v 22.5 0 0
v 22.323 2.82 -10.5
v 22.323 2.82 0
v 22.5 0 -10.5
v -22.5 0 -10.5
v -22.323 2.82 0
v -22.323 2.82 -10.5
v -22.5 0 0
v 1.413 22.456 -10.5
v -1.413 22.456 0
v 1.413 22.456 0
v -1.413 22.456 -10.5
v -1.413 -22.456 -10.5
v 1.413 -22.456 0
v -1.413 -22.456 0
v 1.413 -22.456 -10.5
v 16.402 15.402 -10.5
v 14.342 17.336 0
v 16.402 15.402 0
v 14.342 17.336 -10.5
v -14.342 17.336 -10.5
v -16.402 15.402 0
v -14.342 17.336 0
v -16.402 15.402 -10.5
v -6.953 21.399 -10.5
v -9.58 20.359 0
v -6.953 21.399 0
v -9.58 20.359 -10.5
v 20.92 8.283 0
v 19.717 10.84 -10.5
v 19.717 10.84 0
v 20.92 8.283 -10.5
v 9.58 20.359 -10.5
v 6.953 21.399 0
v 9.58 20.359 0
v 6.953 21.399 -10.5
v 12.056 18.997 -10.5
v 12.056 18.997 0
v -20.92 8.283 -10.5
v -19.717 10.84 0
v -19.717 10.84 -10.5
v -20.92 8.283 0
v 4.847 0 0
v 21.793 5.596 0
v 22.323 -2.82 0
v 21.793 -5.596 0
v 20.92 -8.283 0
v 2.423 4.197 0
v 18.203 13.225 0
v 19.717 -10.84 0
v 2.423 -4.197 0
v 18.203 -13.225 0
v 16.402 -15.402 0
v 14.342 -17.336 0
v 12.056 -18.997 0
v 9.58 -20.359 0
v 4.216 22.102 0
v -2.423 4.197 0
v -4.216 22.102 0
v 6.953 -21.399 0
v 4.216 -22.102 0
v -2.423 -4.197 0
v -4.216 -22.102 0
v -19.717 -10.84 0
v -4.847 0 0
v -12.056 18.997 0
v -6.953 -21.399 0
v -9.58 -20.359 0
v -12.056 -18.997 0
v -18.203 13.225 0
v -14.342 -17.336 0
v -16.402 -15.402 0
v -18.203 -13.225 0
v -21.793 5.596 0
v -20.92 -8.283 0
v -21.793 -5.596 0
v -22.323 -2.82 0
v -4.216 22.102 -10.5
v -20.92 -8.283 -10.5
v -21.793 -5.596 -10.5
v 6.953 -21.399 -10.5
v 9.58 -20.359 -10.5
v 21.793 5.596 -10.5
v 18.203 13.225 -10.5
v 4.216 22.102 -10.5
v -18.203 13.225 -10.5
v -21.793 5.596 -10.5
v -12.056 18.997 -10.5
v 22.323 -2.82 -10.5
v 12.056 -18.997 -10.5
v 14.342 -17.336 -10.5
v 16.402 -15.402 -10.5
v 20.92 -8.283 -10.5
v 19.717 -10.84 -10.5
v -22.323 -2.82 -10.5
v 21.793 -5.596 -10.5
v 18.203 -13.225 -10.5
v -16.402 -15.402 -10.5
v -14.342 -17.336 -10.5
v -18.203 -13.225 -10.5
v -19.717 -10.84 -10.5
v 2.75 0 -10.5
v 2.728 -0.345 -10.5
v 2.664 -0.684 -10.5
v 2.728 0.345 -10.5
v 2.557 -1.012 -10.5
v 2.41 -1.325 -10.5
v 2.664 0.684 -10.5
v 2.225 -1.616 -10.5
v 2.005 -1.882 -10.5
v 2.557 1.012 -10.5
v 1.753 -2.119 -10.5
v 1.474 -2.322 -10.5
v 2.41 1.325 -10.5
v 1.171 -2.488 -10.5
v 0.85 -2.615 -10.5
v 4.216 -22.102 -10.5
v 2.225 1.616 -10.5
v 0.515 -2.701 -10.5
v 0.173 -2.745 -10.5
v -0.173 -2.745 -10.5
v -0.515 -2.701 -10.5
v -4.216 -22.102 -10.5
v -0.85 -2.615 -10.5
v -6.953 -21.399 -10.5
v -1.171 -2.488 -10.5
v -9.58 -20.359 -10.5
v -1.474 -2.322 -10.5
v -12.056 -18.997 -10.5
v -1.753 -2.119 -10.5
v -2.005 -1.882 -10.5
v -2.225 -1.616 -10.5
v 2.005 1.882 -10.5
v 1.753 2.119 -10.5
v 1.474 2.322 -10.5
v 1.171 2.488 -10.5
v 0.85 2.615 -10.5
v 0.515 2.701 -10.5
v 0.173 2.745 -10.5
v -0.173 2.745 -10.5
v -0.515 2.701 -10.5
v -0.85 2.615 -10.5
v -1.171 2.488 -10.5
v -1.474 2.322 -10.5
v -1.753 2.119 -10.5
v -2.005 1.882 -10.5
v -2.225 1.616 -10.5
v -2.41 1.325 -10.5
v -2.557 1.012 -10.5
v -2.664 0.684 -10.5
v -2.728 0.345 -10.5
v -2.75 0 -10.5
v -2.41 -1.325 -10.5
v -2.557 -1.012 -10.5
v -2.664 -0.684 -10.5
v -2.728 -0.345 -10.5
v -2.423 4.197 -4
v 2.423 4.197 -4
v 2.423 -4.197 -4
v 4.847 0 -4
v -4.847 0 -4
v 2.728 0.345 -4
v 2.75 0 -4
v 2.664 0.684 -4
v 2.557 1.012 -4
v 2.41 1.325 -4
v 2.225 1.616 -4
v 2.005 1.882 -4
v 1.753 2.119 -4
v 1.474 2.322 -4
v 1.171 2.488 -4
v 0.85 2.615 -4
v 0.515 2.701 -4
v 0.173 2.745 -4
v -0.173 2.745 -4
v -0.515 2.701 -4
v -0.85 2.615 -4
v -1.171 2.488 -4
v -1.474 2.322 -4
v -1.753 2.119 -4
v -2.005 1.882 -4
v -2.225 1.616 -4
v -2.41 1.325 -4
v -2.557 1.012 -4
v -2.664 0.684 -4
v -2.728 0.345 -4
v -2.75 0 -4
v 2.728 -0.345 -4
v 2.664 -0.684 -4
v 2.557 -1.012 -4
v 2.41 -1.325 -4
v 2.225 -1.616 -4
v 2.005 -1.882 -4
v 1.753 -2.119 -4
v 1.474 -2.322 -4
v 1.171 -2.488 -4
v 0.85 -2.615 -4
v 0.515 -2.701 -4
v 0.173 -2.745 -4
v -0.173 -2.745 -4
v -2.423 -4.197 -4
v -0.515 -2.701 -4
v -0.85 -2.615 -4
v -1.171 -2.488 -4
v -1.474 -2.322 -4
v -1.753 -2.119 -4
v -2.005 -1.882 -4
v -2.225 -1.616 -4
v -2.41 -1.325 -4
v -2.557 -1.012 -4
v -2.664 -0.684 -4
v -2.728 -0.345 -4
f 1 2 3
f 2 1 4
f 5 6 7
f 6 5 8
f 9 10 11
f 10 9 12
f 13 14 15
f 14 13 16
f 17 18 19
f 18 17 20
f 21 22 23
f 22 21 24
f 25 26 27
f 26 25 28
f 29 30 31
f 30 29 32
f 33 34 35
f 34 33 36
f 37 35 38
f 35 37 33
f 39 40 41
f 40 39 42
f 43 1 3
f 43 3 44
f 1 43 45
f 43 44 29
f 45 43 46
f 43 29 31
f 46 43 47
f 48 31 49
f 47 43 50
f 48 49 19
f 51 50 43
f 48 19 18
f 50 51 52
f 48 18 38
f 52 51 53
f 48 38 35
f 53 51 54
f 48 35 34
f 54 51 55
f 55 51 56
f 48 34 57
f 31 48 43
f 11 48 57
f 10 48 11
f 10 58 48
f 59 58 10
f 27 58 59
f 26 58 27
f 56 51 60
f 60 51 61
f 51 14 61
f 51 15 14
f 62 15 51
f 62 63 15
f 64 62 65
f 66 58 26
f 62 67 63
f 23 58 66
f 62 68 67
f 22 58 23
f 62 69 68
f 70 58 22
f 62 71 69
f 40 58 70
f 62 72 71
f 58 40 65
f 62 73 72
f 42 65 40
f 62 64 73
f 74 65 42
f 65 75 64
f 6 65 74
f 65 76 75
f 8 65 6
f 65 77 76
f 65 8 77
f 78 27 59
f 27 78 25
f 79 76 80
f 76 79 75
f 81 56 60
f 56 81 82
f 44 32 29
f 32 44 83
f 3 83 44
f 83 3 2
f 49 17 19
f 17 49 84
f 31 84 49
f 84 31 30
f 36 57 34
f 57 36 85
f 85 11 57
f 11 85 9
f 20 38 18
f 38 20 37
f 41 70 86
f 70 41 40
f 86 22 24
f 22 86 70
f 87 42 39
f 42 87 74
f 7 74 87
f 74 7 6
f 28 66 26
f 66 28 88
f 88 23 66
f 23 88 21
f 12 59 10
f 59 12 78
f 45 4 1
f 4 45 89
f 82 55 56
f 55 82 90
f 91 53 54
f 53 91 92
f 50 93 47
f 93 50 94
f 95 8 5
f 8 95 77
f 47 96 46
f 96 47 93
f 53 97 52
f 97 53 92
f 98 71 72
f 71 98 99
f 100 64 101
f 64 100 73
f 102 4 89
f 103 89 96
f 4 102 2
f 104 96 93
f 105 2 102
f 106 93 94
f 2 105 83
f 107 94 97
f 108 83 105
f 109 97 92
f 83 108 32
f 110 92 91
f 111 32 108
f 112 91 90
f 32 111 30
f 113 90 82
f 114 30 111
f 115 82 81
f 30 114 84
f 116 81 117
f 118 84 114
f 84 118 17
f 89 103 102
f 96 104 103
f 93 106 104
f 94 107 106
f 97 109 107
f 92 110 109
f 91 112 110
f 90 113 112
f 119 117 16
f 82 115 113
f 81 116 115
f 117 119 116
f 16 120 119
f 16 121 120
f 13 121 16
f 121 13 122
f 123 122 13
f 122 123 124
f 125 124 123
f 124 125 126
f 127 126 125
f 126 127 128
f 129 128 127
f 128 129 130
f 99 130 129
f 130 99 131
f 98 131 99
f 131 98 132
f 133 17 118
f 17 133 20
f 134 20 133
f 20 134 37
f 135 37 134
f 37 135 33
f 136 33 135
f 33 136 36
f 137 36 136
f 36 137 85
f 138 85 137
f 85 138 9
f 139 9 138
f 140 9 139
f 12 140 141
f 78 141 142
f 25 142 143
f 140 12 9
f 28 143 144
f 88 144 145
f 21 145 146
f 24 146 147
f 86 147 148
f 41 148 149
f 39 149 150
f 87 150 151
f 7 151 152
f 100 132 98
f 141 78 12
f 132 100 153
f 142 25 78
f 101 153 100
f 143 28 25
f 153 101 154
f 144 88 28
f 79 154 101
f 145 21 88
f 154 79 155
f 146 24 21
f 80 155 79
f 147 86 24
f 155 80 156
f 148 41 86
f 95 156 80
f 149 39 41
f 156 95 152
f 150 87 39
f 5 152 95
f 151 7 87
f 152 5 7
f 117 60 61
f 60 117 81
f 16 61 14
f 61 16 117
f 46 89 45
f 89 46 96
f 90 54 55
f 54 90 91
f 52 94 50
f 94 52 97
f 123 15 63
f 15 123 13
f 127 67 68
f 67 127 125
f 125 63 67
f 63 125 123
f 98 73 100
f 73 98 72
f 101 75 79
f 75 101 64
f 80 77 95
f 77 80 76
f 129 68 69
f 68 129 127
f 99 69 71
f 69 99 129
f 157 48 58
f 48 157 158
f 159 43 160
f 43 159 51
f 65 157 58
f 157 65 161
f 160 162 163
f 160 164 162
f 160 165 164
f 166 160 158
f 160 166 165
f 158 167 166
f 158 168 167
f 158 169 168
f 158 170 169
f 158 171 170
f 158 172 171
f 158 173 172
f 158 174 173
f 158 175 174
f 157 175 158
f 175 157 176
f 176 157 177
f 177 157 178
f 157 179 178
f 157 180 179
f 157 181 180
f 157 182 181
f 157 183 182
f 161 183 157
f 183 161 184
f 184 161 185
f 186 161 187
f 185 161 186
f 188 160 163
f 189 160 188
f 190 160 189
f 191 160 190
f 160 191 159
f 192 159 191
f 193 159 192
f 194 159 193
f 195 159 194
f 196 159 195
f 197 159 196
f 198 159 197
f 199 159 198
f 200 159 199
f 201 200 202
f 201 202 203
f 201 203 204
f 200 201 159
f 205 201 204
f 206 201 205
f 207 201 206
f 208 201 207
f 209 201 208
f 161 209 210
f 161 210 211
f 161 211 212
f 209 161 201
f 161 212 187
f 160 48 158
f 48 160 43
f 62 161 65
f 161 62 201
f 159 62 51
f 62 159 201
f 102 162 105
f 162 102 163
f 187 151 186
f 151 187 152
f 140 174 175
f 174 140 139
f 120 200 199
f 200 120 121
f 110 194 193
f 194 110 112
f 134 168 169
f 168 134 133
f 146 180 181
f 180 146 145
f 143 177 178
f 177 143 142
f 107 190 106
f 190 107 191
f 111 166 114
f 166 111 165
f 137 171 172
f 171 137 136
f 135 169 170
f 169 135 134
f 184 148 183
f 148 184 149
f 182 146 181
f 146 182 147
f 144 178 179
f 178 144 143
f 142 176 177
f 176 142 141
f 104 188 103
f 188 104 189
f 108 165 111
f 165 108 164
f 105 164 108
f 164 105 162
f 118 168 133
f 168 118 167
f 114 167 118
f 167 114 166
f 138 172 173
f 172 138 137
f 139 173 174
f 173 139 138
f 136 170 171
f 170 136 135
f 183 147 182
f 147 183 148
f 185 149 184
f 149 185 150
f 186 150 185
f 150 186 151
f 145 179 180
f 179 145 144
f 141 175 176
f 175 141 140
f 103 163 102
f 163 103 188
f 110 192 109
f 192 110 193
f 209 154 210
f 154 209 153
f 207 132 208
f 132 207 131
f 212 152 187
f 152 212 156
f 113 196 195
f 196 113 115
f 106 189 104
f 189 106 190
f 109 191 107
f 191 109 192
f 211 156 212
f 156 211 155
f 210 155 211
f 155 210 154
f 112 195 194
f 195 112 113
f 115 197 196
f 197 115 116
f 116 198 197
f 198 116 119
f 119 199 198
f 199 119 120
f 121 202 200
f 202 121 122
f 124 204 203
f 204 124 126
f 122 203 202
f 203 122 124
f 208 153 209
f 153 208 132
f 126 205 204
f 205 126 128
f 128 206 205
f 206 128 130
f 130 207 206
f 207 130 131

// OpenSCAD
$fn = 50;


difference() {
	union() {
		translate(v = [0, 0, -10.5000000000]) {
			cylinder(h = 10.5000000000, r = 22.5000000000);
		}
		translate(v = [0, 0, -9.0000000000]) {
			cylinder(h = 9, r = 2.8750000000);
		}
	}
	union() {
		translate(v = [0, 0, 0]) {
			rotate(a = [0, 0, 0]) {
				difference() {
					union() {
						translate(v = [0, 0, -4]) {
							#linear_extrude(height = 4) {
								polygon(points = [[4.8468000000, 0.0000000000], [2.4234000000, 4.1974519271], [-2.4234000000, 4.1974519271], [-4.8468000000, 0.0000000000], [-2.4234000000, -4.1974519271], [2.4234000000, -4.1974519271]]);
							}
						}
					}
					union();
				}
			}
		}
		#translate(v = [0, 0, -100.0000000000]) {
			cylinder(h = 200, r = 2.7500000000);
		}
	}
}
